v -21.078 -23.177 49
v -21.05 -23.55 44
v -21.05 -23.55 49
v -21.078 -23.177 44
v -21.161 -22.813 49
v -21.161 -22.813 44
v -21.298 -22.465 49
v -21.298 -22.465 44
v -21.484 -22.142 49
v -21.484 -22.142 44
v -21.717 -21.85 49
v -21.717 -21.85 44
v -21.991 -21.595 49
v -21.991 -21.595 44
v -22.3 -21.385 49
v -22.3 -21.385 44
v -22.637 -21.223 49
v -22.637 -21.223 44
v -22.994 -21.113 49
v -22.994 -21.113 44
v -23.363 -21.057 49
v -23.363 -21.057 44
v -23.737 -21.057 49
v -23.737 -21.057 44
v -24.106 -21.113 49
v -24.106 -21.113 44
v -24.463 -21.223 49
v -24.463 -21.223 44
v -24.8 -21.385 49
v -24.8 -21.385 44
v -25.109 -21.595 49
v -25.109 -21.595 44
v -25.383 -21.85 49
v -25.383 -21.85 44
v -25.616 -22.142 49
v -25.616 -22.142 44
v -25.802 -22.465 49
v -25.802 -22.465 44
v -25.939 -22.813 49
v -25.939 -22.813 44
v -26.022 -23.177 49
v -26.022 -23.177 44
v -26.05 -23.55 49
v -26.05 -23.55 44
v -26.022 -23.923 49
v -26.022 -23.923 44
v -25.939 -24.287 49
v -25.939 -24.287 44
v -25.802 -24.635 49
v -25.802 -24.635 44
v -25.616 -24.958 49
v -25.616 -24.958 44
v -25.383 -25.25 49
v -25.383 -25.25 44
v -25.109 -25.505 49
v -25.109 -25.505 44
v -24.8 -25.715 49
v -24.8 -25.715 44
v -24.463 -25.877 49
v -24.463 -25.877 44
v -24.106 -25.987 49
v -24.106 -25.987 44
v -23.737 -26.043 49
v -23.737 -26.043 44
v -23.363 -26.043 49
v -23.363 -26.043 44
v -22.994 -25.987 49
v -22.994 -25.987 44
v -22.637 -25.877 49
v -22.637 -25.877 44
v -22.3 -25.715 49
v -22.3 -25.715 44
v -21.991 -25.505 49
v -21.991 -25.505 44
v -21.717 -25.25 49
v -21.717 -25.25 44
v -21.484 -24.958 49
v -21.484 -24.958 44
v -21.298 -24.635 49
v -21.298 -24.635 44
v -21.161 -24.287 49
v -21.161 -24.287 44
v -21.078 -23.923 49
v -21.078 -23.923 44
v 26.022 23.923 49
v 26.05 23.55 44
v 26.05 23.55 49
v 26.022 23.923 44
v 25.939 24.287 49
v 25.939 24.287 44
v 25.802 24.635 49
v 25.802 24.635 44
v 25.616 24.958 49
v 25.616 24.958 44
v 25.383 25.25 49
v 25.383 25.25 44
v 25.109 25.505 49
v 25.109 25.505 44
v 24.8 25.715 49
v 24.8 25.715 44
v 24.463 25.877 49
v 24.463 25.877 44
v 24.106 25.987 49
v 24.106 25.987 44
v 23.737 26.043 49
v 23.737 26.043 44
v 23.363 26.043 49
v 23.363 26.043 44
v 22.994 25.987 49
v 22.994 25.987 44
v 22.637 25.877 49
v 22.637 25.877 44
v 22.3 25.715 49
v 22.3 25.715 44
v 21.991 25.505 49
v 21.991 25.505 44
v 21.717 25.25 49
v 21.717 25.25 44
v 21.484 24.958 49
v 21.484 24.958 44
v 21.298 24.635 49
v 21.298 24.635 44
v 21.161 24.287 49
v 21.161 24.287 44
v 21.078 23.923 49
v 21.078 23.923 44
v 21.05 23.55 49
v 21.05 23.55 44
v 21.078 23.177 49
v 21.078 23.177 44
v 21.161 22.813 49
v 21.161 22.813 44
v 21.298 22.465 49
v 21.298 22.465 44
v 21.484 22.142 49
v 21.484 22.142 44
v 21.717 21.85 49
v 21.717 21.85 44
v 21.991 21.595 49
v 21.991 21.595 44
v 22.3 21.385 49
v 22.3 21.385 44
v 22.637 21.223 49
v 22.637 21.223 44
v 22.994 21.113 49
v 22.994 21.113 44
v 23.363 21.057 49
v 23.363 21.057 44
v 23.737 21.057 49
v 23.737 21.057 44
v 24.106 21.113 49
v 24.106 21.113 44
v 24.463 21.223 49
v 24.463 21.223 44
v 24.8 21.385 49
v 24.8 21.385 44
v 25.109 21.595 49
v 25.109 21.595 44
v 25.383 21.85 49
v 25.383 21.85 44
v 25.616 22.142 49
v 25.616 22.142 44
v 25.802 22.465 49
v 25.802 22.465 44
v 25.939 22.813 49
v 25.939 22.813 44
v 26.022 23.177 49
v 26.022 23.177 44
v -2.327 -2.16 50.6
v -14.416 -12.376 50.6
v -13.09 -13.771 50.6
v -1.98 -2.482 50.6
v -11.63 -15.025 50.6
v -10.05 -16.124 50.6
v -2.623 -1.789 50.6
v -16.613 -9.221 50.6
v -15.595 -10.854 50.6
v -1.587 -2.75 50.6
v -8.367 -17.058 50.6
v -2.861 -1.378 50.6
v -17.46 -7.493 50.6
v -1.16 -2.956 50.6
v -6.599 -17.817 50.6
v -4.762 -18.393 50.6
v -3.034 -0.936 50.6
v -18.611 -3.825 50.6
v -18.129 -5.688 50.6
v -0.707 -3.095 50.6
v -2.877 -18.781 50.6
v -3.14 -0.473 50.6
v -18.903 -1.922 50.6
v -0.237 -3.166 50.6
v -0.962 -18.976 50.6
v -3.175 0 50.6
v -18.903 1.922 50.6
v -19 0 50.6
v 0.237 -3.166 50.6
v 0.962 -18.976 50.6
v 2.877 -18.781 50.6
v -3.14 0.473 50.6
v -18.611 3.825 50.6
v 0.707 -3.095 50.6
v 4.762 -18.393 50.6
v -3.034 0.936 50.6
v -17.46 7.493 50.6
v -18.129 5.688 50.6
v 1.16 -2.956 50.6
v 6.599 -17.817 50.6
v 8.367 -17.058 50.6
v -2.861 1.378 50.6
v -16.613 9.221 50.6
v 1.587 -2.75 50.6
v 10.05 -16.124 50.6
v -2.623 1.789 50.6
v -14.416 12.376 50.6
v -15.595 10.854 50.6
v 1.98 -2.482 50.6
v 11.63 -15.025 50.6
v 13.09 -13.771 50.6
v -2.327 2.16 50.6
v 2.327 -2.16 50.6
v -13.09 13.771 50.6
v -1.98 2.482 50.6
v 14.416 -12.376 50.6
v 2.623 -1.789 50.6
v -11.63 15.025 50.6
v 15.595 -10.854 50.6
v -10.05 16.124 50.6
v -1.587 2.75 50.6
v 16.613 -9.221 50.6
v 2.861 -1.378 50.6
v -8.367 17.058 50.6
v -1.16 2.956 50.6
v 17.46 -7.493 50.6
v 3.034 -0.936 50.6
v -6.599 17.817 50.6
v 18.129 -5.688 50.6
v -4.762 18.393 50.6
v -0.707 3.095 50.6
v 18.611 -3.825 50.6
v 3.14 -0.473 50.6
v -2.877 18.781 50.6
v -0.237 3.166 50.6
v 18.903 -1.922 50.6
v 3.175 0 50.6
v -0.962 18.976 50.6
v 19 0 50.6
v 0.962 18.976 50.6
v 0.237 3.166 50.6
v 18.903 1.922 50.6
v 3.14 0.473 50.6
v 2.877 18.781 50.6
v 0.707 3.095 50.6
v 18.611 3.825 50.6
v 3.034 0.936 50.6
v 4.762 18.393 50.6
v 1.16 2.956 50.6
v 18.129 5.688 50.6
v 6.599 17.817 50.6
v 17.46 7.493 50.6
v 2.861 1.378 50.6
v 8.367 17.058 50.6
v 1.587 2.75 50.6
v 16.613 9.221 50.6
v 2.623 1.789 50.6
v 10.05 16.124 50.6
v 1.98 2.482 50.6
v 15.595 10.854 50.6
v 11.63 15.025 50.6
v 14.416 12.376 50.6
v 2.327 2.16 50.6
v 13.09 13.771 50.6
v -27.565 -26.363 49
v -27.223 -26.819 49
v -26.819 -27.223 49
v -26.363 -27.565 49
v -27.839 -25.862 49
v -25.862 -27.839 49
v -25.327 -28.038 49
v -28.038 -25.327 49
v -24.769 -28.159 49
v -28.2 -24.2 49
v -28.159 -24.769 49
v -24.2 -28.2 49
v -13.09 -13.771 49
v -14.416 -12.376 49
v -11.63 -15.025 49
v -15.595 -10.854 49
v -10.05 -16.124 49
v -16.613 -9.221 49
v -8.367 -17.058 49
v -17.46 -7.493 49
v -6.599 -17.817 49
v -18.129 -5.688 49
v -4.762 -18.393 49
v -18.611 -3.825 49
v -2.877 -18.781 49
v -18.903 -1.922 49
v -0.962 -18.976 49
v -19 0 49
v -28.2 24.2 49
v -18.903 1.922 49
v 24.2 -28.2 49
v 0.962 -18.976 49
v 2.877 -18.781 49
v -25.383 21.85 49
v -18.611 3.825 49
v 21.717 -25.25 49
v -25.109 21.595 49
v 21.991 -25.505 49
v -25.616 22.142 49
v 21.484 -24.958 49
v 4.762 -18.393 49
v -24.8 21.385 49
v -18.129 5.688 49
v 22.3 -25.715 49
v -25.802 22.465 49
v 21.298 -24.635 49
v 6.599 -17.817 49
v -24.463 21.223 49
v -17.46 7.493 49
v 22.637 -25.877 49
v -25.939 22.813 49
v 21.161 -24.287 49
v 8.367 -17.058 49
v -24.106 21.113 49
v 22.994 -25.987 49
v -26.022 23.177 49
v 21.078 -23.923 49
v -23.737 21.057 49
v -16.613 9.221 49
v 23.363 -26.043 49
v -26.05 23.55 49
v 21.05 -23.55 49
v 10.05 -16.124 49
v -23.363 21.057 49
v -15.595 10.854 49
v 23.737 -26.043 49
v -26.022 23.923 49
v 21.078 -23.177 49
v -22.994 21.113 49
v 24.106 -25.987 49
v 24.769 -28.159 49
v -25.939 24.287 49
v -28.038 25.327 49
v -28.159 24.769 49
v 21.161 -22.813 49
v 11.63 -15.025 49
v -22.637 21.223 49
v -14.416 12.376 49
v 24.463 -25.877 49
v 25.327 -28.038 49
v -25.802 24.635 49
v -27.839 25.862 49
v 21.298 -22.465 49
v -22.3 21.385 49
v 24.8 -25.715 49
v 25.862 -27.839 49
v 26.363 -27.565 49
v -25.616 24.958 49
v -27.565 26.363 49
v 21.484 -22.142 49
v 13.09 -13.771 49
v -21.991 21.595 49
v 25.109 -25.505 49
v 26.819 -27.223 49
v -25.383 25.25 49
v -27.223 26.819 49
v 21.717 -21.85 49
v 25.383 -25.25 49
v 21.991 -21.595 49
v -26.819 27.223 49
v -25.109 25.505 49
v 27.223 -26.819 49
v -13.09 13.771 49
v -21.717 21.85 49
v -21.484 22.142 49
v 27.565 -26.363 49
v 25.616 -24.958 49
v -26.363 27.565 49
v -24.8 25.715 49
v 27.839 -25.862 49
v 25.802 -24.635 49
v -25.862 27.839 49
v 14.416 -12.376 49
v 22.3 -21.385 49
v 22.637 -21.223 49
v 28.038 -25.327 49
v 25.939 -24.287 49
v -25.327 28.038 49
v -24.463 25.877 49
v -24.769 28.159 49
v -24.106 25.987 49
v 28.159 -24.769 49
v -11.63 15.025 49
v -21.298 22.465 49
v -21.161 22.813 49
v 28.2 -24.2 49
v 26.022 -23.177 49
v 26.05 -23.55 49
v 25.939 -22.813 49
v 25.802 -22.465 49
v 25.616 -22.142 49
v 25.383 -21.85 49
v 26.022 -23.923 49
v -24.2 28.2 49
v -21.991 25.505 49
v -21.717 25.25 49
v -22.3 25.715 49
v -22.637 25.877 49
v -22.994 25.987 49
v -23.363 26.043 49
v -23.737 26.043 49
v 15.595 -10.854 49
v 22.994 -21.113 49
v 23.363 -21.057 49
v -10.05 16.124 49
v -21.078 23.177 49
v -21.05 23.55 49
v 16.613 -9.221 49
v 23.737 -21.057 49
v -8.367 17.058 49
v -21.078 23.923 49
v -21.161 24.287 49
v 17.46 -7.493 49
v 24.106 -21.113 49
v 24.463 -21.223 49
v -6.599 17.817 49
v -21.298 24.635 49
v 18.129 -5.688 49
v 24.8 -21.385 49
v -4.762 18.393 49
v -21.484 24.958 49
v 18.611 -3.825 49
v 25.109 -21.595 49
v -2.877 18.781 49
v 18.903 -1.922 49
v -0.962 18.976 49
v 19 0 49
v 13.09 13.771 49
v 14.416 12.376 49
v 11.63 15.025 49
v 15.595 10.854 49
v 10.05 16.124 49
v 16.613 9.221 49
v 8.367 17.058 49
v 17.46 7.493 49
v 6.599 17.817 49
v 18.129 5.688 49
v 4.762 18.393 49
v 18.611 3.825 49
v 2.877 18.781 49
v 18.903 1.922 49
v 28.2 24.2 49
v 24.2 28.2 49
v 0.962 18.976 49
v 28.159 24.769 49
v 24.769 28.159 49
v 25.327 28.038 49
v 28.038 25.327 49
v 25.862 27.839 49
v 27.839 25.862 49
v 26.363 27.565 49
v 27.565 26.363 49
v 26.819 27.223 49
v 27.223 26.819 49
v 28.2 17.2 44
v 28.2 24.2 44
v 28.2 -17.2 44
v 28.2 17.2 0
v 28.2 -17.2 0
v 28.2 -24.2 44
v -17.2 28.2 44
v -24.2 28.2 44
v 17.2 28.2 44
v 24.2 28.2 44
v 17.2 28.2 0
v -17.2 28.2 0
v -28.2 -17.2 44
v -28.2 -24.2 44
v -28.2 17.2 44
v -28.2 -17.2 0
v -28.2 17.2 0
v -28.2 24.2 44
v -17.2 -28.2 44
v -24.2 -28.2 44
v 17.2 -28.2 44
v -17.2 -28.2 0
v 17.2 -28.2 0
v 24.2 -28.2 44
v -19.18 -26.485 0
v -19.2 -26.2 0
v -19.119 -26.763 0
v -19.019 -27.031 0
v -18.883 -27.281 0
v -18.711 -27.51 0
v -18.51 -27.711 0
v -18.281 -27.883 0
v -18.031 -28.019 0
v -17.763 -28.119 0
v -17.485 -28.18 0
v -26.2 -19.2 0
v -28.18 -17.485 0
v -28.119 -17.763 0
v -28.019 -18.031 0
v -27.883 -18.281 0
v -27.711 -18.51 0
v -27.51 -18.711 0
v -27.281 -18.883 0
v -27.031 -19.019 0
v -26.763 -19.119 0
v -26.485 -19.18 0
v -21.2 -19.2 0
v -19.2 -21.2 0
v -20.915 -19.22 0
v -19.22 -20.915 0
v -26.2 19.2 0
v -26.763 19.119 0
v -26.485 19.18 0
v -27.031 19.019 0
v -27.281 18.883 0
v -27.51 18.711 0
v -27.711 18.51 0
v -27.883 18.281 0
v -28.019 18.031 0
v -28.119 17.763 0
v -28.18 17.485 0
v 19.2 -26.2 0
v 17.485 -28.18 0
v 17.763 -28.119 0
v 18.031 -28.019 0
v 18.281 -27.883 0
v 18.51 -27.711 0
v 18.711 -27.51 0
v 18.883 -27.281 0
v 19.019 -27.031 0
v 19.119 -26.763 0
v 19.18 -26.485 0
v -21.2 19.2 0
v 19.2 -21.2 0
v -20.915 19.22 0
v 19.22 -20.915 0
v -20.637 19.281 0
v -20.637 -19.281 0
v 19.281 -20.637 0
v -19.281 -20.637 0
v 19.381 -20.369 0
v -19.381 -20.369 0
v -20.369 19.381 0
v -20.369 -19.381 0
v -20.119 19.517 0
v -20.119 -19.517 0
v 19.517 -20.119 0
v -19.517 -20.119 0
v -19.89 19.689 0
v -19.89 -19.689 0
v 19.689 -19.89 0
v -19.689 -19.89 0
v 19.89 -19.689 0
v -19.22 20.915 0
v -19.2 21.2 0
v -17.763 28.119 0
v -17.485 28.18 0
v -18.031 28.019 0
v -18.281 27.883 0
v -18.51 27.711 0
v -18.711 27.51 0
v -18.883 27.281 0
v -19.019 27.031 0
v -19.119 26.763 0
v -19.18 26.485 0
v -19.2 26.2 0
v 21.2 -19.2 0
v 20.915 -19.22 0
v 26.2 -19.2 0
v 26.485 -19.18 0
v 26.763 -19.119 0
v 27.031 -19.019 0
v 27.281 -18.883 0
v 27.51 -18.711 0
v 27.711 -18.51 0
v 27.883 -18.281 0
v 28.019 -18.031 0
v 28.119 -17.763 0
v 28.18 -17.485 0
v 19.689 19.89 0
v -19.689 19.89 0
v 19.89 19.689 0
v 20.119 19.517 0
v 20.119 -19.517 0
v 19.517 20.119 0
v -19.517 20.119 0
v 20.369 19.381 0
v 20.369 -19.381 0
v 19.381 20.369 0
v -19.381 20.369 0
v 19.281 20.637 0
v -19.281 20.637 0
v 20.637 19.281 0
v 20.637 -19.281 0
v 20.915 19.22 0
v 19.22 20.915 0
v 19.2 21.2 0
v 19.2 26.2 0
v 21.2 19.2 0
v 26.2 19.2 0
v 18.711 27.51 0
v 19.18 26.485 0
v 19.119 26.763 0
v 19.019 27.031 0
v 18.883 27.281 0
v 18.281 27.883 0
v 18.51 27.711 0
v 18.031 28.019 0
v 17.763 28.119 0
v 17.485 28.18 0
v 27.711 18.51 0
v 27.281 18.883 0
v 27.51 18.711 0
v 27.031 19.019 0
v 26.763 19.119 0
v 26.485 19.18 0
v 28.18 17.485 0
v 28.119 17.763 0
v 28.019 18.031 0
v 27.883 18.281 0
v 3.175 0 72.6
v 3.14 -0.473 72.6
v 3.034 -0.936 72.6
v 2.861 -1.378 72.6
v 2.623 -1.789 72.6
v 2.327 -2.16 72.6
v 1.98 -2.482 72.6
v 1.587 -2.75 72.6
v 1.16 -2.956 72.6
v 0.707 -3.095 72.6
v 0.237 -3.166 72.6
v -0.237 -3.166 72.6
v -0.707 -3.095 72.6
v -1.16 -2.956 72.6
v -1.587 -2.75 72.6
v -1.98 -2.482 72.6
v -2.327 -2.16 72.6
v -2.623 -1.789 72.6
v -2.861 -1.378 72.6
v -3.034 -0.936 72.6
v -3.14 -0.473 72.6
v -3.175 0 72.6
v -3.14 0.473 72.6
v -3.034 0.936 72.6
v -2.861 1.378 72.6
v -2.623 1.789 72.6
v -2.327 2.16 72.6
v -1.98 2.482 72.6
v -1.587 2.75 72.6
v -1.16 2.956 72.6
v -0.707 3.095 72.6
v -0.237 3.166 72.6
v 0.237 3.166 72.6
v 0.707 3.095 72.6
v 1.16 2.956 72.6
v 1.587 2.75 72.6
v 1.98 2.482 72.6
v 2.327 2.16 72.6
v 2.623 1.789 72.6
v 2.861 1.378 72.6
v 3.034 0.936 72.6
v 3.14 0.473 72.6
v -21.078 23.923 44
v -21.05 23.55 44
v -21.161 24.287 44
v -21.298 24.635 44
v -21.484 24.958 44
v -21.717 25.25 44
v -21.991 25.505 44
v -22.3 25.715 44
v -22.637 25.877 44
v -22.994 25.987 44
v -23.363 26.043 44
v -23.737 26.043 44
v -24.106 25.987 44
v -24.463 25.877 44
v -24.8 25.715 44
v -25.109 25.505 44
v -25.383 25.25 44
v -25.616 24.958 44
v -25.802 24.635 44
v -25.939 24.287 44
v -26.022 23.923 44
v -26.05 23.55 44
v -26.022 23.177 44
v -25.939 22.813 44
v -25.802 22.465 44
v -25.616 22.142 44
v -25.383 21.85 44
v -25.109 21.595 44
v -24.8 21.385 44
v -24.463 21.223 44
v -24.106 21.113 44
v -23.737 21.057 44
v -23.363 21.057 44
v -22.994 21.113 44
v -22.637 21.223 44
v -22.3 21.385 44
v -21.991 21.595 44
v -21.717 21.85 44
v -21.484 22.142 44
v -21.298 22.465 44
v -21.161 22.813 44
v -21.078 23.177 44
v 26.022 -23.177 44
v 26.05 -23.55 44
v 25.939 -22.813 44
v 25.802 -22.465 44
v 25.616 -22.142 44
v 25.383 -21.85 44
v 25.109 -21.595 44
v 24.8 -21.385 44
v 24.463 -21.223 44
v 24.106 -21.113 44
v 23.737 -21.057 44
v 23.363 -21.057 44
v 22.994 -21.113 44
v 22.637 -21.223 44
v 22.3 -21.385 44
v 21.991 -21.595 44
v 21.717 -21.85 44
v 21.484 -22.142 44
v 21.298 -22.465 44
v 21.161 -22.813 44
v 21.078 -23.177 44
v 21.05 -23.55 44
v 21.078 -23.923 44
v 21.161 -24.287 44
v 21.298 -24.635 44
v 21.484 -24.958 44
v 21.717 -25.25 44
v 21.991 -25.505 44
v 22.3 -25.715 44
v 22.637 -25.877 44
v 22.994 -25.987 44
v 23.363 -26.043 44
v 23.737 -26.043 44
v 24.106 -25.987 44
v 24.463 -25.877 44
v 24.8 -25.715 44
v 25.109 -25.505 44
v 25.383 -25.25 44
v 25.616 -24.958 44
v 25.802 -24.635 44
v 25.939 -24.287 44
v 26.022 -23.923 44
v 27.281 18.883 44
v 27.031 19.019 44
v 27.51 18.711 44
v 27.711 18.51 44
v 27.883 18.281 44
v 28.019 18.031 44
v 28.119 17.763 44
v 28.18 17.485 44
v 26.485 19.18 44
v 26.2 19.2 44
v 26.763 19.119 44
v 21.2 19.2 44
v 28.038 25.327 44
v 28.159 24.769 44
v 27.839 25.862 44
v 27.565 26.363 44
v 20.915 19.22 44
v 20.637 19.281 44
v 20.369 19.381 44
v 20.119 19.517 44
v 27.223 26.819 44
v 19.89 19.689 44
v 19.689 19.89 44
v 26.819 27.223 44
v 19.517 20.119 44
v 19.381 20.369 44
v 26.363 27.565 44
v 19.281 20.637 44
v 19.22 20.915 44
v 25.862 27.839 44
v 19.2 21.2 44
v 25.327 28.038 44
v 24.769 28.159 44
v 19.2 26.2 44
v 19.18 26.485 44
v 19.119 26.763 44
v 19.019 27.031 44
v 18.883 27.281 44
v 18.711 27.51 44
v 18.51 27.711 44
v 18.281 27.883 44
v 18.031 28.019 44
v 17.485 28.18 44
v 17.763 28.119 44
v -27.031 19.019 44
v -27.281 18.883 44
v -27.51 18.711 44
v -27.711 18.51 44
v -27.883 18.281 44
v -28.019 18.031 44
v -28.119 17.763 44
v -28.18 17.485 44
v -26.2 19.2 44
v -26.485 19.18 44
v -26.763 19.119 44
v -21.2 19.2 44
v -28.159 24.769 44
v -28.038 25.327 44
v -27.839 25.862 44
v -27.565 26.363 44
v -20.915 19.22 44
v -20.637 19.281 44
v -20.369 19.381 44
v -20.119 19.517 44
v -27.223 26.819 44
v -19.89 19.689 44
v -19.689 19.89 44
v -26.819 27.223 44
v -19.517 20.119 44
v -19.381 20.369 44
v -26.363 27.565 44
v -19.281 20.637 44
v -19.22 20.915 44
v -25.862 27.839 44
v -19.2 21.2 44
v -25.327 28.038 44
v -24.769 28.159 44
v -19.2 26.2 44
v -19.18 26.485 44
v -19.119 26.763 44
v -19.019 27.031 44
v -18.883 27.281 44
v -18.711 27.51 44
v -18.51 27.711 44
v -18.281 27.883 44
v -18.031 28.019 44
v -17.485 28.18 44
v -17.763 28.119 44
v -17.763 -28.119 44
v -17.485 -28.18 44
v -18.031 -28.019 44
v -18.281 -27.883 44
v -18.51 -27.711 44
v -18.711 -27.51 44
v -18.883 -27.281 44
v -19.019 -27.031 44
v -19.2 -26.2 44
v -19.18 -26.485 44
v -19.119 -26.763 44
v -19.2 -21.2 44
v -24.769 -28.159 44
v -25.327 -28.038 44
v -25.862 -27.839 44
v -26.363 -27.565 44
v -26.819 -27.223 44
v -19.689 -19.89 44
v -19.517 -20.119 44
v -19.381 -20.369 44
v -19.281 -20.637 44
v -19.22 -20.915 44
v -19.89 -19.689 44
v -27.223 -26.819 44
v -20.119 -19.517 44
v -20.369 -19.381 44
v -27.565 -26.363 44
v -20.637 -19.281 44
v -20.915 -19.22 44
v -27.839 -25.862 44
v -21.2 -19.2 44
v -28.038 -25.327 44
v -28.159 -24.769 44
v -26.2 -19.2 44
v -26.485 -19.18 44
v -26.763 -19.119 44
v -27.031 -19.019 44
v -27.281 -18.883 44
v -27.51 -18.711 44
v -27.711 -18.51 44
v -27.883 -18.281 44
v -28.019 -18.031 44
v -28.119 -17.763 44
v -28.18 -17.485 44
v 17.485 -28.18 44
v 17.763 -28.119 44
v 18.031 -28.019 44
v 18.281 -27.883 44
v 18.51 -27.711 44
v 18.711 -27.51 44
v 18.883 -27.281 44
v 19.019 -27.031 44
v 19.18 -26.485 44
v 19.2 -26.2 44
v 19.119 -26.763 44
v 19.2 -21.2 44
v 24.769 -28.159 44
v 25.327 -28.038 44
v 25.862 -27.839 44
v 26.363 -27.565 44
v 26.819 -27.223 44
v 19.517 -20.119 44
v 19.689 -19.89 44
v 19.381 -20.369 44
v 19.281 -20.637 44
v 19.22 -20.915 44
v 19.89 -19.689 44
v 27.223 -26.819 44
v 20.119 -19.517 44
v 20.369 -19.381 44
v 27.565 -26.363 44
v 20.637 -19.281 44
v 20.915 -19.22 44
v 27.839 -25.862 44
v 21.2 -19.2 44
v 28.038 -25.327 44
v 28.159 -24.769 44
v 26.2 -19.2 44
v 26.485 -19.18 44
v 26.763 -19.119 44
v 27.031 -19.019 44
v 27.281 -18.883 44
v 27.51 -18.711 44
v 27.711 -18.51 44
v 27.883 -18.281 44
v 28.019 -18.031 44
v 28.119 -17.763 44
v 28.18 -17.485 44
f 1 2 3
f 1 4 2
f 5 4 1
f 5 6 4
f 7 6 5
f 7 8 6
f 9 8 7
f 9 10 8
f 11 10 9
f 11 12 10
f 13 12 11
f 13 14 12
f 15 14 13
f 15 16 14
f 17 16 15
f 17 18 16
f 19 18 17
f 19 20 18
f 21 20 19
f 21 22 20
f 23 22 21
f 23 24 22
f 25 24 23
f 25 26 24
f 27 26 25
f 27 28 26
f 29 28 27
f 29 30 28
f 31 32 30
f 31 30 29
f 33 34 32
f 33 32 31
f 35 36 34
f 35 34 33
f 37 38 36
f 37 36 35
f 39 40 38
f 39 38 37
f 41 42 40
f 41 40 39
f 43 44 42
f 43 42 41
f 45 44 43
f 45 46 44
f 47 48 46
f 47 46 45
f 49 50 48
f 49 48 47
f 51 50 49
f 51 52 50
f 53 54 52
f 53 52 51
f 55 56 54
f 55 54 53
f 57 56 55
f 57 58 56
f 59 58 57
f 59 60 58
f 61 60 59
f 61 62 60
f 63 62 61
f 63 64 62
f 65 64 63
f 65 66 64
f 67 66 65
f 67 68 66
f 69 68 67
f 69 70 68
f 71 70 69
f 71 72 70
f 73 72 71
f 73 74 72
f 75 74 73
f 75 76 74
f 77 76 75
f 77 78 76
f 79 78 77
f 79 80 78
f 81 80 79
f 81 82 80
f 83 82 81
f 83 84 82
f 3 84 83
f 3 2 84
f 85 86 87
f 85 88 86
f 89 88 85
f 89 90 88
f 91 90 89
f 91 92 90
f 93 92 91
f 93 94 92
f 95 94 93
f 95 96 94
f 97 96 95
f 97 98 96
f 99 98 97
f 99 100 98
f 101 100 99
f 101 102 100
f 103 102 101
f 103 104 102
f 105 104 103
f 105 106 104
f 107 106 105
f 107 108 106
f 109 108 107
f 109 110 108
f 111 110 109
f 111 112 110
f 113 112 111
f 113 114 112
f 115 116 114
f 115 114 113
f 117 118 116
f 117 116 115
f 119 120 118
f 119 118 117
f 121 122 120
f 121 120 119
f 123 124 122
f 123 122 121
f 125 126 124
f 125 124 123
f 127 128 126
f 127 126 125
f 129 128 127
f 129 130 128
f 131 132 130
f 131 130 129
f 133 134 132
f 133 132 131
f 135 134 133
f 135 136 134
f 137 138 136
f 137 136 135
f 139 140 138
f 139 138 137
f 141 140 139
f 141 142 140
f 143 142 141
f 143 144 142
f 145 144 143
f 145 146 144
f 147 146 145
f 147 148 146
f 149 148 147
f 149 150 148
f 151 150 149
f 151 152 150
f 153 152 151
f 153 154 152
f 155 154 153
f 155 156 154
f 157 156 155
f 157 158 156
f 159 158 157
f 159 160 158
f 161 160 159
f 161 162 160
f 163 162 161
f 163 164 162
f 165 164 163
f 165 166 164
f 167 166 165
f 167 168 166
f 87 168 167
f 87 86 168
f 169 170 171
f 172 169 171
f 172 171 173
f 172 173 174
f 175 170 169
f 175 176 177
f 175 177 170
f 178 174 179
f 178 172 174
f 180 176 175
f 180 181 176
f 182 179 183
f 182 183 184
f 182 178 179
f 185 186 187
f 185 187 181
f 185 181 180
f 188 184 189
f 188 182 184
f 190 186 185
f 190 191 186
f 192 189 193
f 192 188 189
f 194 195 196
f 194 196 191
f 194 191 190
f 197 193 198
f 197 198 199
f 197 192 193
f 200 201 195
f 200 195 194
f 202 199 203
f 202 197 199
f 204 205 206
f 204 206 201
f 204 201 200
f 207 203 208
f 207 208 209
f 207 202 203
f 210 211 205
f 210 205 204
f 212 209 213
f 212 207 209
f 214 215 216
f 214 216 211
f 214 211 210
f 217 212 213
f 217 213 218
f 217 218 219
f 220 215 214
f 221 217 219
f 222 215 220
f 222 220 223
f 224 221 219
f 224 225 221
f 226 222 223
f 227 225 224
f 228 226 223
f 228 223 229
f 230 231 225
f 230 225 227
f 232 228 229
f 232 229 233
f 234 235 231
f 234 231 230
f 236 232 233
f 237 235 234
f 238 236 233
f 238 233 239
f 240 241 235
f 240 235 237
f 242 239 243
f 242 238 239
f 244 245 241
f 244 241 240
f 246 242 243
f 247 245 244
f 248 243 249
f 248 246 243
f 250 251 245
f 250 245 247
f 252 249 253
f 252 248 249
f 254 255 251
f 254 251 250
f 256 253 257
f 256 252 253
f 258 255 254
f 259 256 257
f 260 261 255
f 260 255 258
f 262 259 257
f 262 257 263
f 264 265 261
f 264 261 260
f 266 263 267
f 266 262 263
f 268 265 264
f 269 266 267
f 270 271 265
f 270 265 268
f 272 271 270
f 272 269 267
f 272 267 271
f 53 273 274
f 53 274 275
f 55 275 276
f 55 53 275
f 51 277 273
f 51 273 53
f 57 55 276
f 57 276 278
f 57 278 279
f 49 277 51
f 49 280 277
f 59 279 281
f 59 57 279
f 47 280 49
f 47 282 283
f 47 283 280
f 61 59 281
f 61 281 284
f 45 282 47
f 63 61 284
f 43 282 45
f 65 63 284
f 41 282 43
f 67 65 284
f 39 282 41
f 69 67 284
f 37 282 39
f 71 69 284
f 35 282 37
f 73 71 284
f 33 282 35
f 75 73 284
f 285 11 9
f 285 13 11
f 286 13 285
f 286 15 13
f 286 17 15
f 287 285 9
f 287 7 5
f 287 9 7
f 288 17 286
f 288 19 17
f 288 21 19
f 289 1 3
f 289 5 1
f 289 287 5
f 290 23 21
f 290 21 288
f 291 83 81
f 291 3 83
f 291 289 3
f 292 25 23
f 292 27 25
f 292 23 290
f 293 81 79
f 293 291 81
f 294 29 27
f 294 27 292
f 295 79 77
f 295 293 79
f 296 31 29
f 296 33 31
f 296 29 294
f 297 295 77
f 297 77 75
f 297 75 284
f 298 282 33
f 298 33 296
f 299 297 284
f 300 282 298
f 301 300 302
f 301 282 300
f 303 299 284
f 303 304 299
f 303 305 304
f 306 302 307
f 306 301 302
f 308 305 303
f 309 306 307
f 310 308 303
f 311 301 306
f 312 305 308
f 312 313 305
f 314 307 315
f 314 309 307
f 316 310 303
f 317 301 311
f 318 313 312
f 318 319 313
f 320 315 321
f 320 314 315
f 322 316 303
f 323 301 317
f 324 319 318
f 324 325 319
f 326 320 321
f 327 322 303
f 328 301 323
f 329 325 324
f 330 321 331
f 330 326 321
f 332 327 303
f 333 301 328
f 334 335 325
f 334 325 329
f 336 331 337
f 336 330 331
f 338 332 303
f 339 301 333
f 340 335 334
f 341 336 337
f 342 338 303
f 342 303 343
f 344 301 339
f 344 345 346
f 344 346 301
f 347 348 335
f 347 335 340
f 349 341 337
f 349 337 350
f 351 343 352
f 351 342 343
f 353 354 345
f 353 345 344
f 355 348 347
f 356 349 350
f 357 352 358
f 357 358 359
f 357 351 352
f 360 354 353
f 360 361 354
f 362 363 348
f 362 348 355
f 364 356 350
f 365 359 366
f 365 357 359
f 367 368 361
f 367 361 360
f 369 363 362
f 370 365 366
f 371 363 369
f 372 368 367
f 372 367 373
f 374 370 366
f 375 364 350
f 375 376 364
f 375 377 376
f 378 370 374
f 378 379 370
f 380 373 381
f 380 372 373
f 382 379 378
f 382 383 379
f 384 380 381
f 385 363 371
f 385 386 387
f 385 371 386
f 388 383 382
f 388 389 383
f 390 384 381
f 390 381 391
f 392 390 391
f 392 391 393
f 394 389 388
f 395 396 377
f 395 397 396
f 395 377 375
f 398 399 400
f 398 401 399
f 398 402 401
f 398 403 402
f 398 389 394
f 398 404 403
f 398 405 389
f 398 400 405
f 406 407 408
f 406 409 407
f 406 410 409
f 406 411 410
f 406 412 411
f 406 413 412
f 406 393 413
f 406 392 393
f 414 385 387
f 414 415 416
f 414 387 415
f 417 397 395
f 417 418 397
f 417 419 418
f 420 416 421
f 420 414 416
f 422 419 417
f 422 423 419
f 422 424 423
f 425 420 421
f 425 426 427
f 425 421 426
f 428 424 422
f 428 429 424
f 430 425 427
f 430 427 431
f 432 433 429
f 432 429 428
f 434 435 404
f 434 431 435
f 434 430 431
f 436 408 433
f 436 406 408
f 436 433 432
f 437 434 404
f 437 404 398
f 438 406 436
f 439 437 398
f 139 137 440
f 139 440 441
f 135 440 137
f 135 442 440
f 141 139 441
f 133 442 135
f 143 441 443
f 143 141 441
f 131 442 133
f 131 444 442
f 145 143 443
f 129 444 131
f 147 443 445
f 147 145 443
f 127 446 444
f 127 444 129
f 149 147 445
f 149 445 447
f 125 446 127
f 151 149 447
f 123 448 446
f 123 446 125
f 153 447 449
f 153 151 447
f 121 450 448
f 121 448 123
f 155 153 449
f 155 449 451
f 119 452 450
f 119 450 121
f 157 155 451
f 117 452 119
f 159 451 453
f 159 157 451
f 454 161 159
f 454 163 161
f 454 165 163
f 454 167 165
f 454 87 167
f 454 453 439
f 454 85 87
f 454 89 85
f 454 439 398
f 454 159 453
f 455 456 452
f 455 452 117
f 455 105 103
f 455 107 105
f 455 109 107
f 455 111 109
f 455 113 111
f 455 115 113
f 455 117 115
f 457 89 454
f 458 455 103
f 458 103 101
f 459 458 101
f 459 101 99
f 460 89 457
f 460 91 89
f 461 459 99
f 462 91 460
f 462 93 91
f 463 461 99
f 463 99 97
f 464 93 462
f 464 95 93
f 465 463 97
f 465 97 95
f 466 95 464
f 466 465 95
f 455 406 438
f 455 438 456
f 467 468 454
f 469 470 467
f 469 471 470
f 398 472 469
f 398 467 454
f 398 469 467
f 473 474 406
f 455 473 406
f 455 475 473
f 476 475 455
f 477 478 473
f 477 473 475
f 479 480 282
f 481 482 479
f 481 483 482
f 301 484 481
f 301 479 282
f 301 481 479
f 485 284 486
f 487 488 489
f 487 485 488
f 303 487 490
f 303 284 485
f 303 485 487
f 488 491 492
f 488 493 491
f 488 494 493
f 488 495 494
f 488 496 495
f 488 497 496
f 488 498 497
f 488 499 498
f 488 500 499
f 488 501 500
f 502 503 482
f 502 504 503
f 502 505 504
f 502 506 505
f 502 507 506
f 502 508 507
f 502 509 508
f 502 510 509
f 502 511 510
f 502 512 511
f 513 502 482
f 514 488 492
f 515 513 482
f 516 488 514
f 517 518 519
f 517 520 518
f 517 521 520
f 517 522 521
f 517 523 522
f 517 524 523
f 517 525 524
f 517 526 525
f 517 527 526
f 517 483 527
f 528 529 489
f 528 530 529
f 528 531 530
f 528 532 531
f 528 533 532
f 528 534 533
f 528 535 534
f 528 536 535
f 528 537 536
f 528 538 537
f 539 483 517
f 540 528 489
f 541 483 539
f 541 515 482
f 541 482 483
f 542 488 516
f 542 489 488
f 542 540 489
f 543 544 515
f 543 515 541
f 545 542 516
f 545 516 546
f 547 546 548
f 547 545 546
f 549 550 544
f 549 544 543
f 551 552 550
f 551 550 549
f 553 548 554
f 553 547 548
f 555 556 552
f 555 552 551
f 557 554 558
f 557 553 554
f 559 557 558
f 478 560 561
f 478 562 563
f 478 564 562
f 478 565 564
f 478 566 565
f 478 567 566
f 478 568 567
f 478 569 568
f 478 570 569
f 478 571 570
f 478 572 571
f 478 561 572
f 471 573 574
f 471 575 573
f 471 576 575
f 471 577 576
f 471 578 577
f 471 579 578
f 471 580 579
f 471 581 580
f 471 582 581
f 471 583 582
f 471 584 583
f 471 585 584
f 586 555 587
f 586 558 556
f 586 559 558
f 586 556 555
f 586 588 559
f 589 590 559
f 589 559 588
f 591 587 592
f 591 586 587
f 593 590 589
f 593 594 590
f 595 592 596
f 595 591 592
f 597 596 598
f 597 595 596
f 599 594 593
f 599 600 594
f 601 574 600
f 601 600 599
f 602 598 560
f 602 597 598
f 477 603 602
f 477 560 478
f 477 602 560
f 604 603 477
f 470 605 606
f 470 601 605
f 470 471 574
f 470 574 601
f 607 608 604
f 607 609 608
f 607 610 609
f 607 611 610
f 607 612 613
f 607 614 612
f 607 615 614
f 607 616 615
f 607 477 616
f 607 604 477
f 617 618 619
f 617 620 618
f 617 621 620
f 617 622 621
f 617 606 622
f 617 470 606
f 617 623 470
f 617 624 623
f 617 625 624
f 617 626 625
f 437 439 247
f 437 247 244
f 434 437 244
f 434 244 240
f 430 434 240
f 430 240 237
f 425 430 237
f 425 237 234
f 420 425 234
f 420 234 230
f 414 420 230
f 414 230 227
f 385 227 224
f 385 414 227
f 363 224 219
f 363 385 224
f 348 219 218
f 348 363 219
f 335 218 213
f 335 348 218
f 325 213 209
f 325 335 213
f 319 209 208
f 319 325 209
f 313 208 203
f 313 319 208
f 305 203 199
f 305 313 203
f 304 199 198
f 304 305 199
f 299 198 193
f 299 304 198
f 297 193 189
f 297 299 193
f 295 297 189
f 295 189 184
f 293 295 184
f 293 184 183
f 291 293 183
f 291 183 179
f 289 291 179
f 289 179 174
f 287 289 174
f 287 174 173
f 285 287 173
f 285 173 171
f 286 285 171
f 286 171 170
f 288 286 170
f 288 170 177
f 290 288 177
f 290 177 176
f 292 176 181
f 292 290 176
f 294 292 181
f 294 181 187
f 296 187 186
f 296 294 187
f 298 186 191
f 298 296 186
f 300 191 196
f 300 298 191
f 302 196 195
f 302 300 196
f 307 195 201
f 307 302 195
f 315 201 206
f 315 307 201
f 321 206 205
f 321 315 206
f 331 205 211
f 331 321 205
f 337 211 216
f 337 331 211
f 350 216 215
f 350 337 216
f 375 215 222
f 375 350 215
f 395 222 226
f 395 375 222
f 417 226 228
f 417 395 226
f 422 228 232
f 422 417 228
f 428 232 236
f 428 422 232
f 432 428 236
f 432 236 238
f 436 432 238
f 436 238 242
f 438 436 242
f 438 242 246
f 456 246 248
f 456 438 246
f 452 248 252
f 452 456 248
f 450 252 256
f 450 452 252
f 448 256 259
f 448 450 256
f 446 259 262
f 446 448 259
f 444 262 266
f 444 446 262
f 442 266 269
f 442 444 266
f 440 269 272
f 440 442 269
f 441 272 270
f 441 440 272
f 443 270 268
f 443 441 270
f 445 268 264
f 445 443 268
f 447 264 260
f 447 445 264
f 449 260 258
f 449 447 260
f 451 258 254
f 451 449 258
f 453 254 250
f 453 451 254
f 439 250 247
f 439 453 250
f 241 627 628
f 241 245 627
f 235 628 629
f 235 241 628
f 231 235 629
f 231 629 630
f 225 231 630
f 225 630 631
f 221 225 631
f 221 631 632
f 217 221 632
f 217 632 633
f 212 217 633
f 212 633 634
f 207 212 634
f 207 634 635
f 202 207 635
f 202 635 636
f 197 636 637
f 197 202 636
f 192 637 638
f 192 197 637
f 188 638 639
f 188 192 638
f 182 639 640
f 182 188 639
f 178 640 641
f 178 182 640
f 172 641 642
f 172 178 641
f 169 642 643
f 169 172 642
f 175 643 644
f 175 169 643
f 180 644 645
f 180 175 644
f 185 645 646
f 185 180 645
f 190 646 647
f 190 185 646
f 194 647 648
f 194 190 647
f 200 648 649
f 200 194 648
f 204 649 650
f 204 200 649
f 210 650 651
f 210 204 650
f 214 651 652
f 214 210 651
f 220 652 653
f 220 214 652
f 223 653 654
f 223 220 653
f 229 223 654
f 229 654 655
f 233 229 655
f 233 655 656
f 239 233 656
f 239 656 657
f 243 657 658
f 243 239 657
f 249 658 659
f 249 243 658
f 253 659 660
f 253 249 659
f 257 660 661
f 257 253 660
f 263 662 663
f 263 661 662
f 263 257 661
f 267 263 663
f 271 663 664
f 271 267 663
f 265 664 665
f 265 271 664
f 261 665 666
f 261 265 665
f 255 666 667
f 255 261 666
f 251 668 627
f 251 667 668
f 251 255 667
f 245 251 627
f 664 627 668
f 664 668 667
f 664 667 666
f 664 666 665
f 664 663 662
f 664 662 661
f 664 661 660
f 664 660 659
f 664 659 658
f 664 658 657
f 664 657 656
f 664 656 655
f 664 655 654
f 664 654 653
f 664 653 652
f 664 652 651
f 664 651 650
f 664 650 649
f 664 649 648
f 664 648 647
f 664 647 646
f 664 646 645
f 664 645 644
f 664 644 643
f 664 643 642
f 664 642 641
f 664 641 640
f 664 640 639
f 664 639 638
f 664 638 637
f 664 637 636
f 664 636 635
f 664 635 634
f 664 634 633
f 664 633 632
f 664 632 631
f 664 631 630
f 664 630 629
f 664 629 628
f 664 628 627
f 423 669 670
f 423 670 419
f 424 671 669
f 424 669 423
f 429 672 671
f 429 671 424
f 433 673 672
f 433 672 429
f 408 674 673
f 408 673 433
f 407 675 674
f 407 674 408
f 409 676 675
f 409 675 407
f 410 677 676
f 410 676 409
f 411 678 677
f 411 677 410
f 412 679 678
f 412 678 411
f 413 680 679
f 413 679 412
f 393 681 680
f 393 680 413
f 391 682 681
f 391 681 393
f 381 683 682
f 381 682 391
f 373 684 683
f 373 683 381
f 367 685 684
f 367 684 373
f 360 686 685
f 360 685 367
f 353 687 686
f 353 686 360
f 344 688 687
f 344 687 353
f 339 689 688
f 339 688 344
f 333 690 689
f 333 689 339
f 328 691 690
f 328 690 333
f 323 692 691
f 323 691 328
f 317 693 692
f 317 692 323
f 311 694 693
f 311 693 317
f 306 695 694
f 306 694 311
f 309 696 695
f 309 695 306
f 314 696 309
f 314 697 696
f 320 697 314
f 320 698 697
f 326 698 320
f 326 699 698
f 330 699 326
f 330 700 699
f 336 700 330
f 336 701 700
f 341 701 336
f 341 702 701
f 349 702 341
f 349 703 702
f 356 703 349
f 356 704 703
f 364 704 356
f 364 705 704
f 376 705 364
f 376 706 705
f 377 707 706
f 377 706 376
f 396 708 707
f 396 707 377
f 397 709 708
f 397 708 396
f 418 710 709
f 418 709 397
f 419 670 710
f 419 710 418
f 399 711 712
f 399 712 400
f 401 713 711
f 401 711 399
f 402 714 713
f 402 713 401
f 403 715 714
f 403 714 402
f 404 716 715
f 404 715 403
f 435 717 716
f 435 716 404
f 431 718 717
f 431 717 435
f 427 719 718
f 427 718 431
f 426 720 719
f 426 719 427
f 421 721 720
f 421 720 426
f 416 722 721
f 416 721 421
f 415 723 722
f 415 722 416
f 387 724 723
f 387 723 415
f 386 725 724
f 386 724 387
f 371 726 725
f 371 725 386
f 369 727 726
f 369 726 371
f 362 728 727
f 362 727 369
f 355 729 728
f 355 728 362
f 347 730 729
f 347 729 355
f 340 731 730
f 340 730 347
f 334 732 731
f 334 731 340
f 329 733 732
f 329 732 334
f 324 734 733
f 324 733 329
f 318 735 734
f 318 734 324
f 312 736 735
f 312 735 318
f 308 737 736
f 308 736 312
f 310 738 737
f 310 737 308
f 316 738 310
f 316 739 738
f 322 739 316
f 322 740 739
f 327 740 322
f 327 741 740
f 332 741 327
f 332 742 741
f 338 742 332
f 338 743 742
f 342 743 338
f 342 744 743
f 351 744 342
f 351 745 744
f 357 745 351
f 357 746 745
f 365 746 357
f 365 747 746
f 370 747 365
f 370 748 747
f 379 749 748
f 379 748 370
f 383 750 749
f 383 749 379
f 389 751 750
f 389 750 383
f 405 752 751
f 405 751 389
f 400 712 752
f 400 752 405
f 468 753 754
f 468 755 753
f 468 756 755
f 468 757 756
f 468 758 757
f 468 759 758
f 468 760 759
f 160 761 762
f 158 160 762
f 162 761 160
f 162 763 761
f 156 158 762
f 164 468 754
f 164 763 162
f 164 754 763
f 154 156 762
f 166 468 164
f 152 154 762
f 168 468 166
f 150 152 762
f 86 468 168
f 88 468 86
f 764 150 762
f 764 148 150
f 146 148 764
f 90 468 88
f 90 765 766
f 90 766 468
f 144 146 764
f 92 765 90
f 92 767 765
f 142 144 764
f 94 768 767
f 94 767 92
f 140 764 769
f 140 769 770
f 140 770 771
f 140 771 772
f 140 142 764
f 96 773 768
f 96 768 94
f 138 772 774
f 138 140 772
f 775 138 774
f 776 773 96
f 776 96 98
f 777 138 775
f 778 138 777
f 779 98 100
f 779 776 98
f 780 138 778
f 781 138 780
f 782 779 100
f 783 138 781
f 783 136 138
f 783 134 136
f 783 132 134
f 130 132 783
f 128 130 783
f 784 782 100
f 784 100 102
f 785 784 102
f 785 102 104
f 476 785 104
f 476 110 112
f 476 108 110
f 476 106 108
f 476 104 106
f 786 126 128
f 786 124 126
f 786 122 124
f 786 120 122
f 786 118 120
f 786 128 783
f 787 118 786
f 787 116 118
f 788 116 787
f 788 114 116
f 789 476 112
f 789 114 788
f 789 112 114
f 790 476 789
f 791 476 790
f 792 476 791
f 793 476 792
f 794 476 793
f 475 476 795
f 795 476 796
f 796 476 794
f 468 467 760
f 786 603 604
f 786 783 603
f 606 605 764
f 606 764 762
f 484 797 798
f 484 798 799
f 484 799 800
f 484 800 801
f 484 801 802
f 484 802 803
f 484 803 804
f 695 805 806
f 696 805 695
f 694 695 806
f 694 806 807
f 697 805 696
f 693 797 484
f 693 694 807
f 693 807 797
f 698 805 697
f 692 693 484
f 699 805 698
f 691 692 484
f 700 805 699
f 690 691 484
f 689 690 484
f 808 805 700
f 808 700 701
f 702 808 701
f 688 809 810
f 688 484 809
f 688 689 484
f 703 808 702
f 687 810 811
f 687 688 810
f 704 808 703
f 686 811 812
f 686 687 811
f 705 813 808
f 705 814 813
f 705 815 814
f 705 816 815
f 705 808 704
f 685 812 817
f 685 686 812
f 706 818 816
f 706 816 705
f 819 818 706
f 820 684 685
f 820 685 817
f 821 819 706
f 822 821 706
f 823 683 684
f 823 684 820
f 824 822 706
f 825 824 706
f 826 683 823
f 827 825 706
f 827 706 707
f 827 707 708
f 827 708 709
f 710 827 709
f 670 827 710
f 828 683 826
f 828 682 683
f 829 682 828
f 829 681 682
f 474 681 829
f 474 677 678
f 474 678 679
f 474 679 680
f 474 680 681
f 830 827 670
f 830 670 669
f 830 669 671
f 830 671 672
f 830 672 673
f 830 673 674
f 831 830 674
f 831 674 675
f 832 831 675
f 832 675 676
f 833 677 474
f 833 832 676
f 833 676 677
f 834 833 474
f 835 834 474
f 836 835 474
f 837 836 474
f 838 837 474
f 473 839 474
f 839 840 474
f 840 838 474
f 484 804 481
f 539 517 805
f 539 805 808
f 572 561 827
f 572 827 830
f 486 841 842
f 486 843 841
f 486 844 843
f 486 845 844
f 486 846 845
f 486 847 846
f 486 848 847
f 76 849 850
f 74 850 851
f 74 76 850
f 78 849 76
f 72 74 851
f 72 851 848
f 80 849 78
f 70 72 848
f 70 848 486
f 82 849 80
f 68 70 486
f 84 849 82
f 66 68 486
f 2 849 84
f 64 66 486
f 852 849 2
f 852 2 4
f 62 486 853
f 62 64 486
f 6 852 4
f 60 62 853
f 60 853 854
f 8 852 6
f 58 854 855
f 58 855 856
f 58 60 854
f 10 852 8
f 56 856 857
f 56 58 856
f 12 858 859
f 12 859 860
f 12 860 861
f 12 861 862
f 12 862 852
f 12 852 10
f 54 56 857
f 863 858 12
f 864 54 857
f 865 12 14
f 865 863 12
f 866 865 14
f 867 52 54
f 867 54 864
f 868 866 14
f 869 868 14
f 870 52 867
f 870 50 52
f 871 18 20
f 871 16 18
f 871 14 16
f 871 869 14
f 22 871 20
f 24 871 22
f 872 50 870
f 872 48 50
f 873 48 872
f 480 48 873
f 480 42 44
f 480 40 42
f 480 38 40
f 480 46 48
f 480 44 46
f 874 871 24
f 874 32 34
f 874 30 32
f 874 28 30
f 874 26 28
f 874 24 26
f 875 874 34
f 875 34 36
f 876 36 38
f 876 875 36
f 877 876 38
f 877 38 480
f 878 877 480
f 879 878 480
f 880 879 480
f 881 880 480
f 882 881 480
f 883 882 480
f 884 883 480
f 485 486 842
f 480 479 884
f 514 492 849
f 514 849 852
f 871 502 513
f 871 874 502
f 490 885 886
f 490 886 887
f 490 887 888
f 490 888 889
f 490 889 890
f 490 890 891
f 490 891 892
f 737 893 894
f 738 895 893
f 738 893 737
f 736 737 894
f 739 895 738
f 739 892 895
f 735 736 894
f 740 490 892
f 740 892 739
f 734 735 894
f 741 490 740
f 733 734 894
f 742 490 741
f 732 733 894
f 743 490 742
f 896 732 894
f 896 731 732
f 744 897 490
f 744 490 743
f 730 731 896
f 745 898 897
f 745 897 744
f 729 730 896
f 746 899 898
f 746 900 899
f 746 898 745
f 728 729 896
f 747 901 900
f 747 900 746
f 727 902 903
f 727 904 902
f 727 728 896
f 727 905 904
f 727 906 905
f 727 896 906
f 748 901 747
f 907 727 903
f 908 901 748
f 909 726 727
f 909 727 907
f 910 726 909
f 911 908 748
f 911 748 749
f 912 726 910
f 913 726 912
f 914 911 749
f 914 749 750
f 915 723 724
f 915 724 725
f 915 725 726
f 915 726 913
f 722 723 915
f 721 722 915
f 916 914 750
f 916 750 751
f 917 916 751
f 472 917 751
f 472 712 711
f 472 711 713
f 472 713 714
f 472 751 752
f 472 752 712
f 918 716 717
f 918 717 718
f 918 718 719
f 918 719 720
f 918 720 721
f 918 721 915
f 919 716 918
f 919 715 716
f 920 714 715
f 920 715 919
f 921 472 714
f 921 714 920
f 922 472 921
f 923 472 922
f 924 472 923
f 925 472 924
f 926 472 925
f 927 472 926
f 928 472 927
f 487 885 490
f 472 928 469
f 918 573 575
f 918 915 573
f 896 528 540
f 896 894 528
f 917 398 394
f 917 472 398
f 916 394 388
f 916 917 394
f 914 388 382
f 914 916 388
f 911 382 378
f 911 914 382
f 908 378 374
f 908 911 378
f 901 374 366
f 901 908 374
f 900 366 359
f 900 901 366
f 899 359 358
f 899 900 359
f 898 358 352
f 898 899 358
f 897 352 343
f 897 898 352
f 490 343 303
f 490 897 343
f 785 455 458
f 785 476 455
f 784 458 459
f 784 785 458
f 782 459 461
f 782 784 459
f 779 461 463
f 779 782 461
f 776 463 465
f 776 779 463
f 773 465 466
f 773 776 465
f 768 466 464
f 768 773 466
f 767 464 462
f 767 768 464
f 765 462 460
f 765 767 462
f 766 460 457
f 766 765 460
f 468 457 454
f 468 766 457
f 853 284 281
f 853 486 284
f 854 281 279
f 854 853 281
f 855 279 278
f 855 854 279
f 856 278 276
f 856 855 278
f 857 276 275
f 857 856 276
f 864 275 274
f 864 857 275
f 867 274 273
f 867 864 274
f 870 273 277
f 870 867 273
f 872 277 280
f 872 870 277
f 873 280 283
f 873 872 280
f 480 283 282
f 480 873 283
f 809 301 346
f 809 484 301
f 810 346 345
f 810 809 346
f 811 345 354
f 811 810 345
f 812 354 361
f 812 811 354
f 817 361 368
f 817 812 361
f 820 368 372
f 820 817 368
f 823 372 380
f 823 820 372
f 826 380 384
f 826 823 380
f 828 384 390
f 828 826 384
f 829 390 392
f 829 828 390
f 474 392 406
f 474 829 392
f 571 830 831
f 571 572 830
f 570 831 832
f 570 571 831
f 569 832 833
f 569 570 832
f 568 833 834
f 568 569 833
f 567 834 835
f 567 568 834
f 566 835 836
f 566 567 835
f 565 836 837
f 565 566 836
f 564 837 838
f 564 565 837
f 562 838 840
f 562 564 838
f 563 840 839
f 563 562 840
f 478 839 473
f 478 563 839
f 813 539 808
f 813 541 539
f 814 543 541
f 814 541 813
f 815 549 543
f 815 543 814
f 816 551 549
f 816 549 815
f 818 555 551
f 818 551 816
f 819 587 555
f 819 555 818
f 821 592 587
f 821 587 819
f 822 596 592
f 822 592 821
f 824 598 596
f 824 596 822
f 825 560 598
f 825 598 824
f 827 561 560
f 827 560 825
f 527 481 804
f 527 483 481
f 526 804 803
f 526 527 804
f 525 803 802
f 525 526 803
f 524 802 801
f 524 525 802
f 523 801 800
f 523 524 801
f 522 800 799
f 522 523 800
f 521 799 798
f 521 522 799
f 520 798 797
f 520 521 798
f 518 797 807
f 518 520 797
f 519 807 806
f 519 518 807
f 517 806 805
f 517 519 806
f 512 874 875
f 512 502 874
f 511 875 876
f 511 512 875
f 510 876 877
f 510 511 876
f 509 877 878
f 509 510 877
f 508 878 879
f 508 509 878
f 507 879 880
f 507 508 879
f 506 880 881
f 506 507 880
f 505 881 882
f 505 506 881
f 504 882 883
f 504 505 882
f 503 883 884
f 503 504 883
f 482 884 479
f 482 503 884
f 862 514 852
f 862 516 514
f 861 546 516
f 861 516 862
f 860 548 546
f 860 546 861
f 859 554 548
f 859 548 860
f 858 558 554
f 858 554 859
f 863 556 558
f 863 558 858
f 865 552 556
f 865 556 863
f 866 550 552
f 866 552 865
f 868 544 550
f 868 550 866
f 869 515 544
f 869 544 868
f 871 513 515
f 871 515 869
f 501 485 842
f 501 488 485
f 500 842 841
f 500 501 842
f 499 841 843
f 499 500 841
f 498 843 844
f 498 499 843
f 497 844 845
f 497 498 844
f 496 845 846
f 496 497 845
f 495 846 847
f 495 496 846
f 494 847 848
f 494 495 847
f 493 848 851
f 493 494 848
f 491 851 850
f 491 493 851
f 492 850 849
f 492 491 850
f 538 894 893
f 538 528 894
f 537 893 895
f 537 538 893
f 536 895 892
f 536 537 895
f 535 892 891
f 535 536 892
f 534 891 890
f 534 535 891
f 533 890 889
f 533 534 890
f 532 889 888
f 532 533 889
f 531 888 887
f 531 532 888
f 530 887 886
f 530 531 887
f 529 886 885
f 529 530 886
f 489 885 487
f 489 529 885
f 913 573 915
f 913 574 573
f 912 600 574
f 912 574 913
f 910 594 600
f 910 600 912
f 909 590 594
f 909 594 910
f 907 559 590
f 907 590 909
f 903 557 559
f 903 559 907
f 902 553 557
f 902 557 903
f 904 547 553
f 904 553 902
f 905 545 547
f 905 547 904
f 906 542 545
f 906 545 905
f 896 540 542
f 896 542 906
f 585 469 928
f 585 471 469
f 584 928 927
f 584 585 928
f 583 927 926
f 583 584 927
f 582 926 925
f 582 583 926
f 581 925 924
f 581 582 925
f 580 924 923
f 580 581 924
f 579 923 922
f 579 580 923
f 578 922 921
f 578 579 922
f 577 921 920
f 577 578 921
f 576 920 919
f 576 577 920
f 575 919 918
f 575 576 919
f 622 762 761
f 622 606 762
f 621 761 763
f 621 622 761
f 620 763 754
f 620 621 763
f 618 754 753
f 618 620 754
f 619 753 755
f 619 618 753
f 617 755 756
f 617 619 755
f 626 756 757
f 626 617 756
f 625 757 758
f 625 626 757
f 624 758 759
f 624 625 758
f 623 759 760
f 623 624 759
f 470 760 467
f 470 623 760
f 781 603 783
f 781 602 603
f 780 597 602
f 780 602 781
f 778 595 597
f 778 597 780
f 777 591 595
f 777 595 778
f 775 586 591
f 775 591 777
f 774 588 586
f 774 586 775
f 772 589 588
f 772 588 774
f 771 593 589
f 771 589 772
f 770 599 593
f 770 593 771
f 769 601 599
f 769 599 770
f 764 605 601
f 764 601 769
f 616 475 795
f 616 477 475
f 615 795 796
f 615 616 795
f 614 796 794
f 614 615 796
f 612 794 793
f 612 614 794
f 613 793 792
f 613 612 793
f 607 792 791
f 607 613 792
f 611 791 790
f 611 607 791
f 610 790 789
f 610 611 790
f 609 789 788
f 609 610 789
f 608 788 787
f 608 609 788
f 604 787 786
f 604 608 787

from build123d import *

# Parameters (mm, degrees)
CROQUIS1_W              = 56.4
CROQUIS1_H              = 56.4
SALIENTE_EXTRUIR1_DEPTH = 49
CROQUIS2_R              = 19
SALIENTE_EXTRUIR2_DEPTH = 1.6
CROQUIS3_R              = 3.175
SALIENTE_EXTRUIR3_DEPTH = 22
CROQUIS4_R              = 2.5
CORTAR_EXTRUIR1_DEPTH   = 64.178160784
CROQUIS5_W              = 9
CROQUIS5_H              = 9
CORTAR_EXTRUIR2_DEPTH   = 44
REDONDEO1_R             = 4
REDONDEO2_R             = 2


with BuildPart() as part:
    # Croquis1 → Saliente-Extruir1 (new body)
    with BuildSketch(Plane.XY):
        Rectangle(CROQUIS1_W, CROQUIS1_H)
    extrude(amount=SALIENTE_EXTRUIR1_DEPTH)

    # Croquis2 → Saliente-Extruir2 (add)
    with BuildSketch(Plane.XY.offset(49)):
        Circle(CROQUIS2_R)
    extrude(amount=SALIENTE_EXTRUIR2_DEPTH)

    # Croquis3 → Saliente-Extruir3 (add)
    with BuildSketch(Plane.XY.offset(50.6)):
        Circle(CROQUIS3_R)
    extrude(amount=SALIENTE_EXTRUIR3_DEPTH)

    # Croquis4 → Cortar-Extruir1 (cut, through all)
    with BuildSketch(Plane.XY.offset(49)):
        with Locations((23.55, 23.55)):
            Circle(CROQUIS4_R)
        with Locations((-23.55, 23.55)):
            Circle(CROQUIS4_R)
        with Locations((-23.55, -23.55)):
            Circle(CROQUIS4_R)
        with Locations((23.55, -23.55)):
            Circle(CROQUIS4_R)
    extrude(amount=-CORTAR_EXTRUIR1_DEPTH, mode=Mode.SUBTRACT)

    # Croquis5 → Cortar-Extruir2 (cut)
    with BuildSketch(Plane(origin=(0, 0, 0), x_dir=(-1, 0, 0), z_dir=(0, 0, -1))):
        with Locations((-23.7, 23.7)):
            Rectangle(CROQUIS5_W, CROQUIS5_H)
        with Locations((23.7, 23.7)):
            Rectangle(CROQUIS5_W, CROQUIS5_H)
        with Locations((23.7, -23.7)):
            Rectangle(CROQUIS5_W, CROQUIS5_H)
        with Locations((-23.7, -23.7)):
            Rectangle(CROQUIS5_W, CROQUIS5_H)
    extrude(amount=-CORTAR_EXTRUIR2_DEPTH, mode=Mode.SUBTRACT)

    # Redondeo1
    redondeo1_edges = [part.edges().sort_by_distance(p)[0] for p in [
        (28.2, -28.2, 46.5),
        (-28.2, -28.2, 46.5),
        (-28.2, 28.2, 46.5),
        (28.2, 28.2, 46.5),
    ]]
    fillet(redondeo1_edges, radius=REDONDEO1_R)

    # Redondeo2
    redondeo2_edges = [part.edges().sort_by_distance(p)[0] for p in [
        (28.2, 19.2, 22),
        (19.2, 28.2, 22),
        (19.2, 19.2, 22),
        (-28.2, 19.2, 22),
        (-19.2, 19.2, 22),
        (-19.2, 28.2, 22),
        (-28.2, -19.2, 22),
        (-19.2, -28.2, 22),
        (-19.2, -19.2, 22),
        (28.2, -19.2, 22),
        (19.2, -19.2, 22),
        (19.2, -28.2, 22),
    ]]
    fillet(redondeo2_edges, radius=REDONDEO2_R)


solid = part.part
